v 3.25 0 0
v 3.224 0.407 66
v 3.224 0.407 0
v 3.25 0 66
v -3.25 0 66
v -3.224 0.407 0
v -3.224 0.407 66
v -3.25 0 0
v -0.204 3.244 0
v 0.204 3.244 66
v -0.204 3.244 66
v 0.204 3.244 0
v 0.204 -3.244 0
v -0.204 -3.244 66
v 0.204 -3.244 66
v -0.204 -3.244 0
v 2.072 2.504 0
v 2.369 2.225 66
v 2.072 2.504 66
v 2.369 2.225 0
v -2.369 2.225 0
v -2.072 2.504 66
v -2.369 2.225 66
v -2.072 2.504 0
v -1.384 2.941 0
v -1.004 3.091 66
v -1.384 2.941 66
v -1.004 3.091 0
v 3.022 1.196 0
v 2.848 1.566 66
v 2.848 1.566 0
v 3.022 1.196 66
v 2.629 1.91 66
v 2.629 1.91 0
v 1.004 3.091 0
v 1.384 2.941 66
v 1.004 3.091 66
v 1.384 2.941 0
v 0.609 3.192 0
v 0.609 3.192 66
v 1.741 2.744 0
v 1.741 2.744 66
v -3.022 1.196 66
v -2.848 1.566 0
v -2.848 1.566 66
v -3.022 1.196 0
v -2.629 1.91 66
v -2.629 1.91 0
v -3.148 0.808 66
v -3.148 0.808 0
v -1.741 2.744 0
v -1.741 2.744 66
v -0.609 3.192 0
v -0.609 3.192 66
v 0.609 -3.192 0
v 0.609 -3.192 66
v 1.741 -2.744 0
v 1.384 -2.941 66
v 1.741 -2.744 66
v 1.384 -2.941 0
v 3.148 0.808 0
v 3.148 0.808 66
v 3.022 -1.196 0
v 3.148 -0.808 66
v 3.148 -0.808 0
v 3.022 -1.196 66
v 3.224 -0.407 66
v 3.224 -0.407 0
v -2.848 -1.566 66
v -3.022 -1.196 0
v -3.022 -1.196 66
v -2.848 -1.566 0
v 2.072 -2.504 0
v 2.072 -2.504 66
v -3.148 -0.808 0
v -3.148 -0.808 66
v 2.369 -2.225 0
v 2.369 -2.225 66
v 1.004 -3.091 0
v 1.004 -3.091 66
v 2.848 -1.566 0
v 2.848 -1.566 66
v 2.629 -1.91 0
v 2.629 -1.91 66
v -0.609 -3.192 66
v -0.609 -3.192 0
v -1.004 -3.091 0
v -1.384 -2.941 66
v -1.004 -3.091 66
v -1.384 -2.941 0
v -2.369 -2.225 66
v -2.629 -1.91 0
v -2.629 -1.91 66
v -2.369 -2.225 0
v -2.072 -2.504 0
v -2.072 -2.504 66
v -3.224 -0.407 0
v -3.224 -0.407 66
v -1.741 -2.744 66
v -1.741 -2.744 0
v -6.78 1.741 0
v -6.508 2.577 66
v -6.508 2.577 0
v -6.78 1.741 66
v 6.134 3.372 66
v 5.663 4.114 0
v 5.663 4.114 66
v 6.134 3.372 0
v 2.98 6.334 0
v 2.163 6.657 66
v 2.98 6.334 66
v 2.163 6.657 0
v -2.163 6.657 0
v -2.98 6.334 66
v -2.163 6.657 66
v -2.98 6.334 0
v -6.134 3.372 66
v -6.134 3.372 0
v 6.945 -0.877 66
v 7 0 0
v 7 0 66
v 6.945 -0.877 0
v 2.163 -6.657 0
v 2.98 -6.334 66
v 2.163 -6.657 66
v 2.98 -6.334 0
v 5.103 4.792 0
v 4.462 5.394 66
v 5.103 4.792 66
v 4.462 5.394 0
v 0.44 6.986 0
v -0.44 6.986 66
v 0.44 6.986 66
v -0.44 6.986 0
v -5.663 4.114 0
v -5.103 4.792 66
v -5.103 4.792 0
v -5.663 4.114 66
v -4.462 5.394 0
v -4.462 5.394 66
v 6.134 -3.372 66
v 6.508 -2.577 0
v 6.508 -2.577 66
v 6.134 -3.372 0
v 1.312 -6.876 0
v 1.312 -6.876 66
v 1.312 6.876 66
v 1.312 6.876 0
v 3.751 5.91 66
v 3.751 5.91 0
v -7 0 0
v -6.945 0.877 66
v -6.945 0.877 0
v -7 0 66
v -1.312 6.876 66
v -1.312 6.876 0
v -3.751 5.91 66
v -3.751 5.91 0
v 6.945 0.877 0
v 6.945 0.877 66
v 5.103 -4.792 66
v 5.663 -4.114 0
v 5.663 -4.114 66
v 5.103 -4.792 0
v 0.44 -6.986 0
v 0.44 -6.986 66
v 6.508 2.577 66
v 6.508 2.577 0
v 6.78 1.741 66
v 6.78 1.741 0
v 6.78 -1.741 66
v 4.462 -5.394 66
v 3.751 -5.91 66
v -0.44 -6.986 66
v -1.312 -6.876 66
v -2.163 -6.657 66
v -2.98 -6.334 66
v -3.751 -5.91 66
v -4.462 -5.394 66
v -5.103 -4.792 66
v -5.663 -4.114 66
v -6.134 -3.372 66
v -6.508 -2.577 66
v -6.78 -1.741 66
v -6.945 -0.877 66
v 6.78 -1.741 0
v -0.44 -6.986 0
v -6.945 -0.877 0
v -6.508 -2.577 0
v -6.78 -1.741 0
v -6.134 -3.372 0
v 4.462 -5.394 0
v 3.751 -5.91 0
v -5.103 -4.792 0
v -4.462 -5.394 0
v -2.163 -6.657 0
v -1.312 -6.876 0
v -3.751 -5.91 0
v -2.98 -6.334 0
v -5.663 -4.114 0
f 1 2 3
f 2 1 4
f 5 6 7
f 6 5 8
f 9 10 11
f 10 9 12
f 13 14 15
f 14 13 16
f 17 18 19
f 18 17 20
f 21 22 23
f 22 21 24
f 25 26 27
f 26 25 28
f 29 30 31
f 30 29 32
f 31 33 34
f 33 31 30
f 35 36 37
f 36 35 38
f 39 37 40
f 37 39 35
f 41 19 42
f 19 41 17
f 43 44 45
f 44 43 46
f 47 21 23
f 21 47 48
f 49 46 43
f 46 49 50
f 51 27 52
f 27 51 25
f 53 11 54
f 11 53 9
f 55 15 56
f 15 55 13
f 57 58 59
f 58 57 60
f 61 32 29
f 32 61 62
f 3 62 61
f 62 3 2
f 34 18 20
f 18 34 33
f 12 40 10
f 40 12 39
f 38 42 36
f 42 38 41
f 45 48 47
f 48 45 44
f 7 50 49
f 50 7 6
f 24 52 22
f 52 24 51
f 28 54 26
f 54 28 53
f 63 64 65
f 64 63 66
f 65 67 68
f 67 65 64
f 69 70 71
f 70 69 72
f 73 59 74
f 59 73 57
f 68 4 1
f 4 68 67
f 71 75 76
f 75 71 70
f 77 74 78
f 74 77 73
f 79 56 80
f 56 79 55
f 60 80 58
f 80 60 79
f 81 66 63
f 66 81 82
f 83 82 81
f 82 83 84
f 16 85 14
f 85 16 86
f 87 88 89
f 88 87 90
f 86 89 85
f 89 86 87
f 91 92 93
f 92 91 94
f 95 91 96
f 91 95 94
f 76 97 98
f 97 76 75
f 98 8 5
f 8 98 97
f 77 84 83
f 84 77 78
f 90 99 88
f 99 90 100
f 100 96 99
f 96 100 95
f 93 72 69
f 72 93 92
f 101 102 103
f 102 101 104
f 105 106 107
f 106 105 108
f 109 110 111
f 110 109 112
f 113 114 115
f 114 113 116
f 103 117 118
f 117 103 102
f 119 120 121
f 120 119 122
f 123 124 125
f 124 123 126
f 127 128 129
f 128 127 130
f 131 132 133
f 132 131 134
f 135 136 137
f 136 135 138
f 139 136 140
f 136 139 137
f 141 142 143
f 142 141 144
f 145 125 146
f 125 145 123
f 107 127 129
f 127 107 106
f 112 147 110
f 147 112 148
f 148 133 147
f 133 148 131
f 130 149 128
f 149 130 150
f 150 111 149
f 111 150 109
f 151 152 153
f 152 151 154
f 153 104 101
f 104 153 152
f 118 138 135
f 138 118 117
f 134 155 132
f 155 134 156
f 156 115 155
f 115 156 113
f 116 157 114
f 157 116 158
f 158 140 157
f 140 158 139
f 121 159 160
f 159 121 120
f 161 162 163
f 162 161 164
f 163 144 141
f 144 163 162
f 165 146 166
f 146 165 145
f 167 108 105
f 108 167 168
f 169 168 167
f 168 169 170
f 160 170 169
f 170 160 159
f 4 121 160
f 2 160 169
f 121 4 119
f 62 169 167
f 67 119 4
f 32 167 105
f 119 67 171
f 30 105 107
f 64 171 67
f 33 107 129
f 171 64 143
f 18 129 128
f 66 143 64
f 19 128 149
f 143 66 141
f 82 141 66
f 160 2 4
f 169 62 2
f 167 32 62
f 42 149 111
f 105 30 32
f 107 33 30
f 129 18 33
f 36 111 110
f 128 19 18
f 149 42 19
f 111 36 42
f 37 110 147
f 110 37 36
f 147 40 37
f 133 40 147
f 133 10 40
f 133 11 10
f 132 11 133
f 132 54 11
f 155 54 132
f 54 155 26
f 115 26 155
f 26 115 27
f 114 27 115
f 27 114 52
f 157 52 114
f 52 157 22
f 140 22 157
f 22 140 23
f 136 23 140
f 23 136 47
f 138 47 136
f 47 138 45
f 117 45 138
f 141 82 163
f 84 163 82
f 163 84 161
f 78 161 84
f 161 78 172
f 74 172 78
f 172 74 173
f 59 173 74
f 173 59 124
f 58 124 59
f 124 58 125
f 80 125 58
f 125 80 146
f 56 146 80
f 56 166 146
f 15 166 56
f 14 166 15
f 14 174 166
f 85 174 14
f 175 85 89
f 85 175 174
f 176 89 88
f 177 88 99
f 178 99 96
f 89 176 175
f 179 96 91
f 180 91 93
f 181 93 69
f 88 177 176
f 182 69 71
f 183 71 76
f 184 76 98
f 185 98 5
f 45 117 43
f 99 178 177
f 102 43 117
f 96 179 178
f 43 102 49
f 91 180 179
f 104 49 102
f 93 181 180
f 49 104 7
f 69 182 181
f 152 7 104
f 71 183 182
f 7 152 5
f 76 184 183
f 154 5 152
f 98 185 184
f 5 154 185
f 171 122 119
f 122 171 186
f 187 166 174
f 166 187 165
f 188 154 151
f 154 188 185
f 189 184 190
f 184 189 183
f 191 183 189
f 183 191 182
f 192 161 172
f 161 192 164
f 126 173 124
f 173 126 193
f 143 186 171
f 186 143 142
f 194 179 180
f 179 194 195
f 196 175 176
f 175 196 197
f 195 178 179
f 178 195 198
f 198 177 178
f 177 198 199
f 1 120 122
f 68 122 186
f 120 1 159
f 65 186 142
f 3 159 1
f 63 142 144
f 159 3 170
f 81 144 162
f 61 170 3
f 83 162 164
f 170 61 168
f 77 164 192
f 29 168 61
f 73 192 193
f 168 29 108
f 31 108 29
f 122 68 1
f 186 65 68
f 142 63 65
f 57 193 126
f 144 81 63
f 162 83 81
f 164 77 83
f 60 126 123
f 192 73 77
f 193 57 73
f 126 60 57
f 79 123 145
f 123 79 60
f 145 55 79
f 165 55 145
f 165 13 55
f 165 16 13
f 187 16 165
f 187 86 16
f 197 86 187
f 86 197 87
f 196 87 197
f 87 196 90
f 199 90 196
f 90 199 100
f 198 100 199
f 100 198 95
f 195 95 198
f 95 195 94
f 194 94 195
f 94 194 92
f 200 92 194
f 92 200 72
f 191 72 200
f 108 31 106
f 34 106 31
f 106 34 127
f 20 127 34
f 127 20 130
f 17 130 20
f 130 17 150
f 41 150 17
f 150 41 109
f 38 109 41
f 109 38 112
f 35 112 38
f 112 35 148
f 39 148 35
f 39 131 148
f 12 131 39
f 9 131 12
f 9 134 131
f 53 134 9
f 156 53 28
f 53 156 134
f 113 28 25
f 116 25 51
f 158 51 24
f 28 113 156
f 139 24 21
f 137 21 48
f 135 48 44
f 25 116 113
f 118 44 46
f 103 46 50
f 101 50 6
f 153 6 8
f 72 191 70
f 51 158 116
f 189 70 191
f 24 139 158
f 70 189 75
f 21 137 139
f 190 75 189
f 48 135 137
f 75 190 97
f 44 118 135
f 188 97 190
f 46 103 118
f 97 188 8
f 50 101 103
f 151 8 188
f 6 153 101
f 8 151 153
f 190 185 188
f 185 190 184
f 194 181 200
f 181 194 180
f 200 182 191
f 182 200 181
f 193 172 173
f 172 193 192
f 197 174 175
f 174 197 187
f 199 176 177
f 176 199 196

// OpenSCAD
$fn = 50;


difference() {
	union() {
		cylinder(h = 66, r = 7.0000000000);
	}
	union() {
		translate(v = [0, 0, -100]) {
			cylinder(h = 200, r = 3.2500000000);
		}
		translate(v = [0, 0, -100]) {
			cylinder(h = 200, r = 1.8000000000);
		}
	}
}
